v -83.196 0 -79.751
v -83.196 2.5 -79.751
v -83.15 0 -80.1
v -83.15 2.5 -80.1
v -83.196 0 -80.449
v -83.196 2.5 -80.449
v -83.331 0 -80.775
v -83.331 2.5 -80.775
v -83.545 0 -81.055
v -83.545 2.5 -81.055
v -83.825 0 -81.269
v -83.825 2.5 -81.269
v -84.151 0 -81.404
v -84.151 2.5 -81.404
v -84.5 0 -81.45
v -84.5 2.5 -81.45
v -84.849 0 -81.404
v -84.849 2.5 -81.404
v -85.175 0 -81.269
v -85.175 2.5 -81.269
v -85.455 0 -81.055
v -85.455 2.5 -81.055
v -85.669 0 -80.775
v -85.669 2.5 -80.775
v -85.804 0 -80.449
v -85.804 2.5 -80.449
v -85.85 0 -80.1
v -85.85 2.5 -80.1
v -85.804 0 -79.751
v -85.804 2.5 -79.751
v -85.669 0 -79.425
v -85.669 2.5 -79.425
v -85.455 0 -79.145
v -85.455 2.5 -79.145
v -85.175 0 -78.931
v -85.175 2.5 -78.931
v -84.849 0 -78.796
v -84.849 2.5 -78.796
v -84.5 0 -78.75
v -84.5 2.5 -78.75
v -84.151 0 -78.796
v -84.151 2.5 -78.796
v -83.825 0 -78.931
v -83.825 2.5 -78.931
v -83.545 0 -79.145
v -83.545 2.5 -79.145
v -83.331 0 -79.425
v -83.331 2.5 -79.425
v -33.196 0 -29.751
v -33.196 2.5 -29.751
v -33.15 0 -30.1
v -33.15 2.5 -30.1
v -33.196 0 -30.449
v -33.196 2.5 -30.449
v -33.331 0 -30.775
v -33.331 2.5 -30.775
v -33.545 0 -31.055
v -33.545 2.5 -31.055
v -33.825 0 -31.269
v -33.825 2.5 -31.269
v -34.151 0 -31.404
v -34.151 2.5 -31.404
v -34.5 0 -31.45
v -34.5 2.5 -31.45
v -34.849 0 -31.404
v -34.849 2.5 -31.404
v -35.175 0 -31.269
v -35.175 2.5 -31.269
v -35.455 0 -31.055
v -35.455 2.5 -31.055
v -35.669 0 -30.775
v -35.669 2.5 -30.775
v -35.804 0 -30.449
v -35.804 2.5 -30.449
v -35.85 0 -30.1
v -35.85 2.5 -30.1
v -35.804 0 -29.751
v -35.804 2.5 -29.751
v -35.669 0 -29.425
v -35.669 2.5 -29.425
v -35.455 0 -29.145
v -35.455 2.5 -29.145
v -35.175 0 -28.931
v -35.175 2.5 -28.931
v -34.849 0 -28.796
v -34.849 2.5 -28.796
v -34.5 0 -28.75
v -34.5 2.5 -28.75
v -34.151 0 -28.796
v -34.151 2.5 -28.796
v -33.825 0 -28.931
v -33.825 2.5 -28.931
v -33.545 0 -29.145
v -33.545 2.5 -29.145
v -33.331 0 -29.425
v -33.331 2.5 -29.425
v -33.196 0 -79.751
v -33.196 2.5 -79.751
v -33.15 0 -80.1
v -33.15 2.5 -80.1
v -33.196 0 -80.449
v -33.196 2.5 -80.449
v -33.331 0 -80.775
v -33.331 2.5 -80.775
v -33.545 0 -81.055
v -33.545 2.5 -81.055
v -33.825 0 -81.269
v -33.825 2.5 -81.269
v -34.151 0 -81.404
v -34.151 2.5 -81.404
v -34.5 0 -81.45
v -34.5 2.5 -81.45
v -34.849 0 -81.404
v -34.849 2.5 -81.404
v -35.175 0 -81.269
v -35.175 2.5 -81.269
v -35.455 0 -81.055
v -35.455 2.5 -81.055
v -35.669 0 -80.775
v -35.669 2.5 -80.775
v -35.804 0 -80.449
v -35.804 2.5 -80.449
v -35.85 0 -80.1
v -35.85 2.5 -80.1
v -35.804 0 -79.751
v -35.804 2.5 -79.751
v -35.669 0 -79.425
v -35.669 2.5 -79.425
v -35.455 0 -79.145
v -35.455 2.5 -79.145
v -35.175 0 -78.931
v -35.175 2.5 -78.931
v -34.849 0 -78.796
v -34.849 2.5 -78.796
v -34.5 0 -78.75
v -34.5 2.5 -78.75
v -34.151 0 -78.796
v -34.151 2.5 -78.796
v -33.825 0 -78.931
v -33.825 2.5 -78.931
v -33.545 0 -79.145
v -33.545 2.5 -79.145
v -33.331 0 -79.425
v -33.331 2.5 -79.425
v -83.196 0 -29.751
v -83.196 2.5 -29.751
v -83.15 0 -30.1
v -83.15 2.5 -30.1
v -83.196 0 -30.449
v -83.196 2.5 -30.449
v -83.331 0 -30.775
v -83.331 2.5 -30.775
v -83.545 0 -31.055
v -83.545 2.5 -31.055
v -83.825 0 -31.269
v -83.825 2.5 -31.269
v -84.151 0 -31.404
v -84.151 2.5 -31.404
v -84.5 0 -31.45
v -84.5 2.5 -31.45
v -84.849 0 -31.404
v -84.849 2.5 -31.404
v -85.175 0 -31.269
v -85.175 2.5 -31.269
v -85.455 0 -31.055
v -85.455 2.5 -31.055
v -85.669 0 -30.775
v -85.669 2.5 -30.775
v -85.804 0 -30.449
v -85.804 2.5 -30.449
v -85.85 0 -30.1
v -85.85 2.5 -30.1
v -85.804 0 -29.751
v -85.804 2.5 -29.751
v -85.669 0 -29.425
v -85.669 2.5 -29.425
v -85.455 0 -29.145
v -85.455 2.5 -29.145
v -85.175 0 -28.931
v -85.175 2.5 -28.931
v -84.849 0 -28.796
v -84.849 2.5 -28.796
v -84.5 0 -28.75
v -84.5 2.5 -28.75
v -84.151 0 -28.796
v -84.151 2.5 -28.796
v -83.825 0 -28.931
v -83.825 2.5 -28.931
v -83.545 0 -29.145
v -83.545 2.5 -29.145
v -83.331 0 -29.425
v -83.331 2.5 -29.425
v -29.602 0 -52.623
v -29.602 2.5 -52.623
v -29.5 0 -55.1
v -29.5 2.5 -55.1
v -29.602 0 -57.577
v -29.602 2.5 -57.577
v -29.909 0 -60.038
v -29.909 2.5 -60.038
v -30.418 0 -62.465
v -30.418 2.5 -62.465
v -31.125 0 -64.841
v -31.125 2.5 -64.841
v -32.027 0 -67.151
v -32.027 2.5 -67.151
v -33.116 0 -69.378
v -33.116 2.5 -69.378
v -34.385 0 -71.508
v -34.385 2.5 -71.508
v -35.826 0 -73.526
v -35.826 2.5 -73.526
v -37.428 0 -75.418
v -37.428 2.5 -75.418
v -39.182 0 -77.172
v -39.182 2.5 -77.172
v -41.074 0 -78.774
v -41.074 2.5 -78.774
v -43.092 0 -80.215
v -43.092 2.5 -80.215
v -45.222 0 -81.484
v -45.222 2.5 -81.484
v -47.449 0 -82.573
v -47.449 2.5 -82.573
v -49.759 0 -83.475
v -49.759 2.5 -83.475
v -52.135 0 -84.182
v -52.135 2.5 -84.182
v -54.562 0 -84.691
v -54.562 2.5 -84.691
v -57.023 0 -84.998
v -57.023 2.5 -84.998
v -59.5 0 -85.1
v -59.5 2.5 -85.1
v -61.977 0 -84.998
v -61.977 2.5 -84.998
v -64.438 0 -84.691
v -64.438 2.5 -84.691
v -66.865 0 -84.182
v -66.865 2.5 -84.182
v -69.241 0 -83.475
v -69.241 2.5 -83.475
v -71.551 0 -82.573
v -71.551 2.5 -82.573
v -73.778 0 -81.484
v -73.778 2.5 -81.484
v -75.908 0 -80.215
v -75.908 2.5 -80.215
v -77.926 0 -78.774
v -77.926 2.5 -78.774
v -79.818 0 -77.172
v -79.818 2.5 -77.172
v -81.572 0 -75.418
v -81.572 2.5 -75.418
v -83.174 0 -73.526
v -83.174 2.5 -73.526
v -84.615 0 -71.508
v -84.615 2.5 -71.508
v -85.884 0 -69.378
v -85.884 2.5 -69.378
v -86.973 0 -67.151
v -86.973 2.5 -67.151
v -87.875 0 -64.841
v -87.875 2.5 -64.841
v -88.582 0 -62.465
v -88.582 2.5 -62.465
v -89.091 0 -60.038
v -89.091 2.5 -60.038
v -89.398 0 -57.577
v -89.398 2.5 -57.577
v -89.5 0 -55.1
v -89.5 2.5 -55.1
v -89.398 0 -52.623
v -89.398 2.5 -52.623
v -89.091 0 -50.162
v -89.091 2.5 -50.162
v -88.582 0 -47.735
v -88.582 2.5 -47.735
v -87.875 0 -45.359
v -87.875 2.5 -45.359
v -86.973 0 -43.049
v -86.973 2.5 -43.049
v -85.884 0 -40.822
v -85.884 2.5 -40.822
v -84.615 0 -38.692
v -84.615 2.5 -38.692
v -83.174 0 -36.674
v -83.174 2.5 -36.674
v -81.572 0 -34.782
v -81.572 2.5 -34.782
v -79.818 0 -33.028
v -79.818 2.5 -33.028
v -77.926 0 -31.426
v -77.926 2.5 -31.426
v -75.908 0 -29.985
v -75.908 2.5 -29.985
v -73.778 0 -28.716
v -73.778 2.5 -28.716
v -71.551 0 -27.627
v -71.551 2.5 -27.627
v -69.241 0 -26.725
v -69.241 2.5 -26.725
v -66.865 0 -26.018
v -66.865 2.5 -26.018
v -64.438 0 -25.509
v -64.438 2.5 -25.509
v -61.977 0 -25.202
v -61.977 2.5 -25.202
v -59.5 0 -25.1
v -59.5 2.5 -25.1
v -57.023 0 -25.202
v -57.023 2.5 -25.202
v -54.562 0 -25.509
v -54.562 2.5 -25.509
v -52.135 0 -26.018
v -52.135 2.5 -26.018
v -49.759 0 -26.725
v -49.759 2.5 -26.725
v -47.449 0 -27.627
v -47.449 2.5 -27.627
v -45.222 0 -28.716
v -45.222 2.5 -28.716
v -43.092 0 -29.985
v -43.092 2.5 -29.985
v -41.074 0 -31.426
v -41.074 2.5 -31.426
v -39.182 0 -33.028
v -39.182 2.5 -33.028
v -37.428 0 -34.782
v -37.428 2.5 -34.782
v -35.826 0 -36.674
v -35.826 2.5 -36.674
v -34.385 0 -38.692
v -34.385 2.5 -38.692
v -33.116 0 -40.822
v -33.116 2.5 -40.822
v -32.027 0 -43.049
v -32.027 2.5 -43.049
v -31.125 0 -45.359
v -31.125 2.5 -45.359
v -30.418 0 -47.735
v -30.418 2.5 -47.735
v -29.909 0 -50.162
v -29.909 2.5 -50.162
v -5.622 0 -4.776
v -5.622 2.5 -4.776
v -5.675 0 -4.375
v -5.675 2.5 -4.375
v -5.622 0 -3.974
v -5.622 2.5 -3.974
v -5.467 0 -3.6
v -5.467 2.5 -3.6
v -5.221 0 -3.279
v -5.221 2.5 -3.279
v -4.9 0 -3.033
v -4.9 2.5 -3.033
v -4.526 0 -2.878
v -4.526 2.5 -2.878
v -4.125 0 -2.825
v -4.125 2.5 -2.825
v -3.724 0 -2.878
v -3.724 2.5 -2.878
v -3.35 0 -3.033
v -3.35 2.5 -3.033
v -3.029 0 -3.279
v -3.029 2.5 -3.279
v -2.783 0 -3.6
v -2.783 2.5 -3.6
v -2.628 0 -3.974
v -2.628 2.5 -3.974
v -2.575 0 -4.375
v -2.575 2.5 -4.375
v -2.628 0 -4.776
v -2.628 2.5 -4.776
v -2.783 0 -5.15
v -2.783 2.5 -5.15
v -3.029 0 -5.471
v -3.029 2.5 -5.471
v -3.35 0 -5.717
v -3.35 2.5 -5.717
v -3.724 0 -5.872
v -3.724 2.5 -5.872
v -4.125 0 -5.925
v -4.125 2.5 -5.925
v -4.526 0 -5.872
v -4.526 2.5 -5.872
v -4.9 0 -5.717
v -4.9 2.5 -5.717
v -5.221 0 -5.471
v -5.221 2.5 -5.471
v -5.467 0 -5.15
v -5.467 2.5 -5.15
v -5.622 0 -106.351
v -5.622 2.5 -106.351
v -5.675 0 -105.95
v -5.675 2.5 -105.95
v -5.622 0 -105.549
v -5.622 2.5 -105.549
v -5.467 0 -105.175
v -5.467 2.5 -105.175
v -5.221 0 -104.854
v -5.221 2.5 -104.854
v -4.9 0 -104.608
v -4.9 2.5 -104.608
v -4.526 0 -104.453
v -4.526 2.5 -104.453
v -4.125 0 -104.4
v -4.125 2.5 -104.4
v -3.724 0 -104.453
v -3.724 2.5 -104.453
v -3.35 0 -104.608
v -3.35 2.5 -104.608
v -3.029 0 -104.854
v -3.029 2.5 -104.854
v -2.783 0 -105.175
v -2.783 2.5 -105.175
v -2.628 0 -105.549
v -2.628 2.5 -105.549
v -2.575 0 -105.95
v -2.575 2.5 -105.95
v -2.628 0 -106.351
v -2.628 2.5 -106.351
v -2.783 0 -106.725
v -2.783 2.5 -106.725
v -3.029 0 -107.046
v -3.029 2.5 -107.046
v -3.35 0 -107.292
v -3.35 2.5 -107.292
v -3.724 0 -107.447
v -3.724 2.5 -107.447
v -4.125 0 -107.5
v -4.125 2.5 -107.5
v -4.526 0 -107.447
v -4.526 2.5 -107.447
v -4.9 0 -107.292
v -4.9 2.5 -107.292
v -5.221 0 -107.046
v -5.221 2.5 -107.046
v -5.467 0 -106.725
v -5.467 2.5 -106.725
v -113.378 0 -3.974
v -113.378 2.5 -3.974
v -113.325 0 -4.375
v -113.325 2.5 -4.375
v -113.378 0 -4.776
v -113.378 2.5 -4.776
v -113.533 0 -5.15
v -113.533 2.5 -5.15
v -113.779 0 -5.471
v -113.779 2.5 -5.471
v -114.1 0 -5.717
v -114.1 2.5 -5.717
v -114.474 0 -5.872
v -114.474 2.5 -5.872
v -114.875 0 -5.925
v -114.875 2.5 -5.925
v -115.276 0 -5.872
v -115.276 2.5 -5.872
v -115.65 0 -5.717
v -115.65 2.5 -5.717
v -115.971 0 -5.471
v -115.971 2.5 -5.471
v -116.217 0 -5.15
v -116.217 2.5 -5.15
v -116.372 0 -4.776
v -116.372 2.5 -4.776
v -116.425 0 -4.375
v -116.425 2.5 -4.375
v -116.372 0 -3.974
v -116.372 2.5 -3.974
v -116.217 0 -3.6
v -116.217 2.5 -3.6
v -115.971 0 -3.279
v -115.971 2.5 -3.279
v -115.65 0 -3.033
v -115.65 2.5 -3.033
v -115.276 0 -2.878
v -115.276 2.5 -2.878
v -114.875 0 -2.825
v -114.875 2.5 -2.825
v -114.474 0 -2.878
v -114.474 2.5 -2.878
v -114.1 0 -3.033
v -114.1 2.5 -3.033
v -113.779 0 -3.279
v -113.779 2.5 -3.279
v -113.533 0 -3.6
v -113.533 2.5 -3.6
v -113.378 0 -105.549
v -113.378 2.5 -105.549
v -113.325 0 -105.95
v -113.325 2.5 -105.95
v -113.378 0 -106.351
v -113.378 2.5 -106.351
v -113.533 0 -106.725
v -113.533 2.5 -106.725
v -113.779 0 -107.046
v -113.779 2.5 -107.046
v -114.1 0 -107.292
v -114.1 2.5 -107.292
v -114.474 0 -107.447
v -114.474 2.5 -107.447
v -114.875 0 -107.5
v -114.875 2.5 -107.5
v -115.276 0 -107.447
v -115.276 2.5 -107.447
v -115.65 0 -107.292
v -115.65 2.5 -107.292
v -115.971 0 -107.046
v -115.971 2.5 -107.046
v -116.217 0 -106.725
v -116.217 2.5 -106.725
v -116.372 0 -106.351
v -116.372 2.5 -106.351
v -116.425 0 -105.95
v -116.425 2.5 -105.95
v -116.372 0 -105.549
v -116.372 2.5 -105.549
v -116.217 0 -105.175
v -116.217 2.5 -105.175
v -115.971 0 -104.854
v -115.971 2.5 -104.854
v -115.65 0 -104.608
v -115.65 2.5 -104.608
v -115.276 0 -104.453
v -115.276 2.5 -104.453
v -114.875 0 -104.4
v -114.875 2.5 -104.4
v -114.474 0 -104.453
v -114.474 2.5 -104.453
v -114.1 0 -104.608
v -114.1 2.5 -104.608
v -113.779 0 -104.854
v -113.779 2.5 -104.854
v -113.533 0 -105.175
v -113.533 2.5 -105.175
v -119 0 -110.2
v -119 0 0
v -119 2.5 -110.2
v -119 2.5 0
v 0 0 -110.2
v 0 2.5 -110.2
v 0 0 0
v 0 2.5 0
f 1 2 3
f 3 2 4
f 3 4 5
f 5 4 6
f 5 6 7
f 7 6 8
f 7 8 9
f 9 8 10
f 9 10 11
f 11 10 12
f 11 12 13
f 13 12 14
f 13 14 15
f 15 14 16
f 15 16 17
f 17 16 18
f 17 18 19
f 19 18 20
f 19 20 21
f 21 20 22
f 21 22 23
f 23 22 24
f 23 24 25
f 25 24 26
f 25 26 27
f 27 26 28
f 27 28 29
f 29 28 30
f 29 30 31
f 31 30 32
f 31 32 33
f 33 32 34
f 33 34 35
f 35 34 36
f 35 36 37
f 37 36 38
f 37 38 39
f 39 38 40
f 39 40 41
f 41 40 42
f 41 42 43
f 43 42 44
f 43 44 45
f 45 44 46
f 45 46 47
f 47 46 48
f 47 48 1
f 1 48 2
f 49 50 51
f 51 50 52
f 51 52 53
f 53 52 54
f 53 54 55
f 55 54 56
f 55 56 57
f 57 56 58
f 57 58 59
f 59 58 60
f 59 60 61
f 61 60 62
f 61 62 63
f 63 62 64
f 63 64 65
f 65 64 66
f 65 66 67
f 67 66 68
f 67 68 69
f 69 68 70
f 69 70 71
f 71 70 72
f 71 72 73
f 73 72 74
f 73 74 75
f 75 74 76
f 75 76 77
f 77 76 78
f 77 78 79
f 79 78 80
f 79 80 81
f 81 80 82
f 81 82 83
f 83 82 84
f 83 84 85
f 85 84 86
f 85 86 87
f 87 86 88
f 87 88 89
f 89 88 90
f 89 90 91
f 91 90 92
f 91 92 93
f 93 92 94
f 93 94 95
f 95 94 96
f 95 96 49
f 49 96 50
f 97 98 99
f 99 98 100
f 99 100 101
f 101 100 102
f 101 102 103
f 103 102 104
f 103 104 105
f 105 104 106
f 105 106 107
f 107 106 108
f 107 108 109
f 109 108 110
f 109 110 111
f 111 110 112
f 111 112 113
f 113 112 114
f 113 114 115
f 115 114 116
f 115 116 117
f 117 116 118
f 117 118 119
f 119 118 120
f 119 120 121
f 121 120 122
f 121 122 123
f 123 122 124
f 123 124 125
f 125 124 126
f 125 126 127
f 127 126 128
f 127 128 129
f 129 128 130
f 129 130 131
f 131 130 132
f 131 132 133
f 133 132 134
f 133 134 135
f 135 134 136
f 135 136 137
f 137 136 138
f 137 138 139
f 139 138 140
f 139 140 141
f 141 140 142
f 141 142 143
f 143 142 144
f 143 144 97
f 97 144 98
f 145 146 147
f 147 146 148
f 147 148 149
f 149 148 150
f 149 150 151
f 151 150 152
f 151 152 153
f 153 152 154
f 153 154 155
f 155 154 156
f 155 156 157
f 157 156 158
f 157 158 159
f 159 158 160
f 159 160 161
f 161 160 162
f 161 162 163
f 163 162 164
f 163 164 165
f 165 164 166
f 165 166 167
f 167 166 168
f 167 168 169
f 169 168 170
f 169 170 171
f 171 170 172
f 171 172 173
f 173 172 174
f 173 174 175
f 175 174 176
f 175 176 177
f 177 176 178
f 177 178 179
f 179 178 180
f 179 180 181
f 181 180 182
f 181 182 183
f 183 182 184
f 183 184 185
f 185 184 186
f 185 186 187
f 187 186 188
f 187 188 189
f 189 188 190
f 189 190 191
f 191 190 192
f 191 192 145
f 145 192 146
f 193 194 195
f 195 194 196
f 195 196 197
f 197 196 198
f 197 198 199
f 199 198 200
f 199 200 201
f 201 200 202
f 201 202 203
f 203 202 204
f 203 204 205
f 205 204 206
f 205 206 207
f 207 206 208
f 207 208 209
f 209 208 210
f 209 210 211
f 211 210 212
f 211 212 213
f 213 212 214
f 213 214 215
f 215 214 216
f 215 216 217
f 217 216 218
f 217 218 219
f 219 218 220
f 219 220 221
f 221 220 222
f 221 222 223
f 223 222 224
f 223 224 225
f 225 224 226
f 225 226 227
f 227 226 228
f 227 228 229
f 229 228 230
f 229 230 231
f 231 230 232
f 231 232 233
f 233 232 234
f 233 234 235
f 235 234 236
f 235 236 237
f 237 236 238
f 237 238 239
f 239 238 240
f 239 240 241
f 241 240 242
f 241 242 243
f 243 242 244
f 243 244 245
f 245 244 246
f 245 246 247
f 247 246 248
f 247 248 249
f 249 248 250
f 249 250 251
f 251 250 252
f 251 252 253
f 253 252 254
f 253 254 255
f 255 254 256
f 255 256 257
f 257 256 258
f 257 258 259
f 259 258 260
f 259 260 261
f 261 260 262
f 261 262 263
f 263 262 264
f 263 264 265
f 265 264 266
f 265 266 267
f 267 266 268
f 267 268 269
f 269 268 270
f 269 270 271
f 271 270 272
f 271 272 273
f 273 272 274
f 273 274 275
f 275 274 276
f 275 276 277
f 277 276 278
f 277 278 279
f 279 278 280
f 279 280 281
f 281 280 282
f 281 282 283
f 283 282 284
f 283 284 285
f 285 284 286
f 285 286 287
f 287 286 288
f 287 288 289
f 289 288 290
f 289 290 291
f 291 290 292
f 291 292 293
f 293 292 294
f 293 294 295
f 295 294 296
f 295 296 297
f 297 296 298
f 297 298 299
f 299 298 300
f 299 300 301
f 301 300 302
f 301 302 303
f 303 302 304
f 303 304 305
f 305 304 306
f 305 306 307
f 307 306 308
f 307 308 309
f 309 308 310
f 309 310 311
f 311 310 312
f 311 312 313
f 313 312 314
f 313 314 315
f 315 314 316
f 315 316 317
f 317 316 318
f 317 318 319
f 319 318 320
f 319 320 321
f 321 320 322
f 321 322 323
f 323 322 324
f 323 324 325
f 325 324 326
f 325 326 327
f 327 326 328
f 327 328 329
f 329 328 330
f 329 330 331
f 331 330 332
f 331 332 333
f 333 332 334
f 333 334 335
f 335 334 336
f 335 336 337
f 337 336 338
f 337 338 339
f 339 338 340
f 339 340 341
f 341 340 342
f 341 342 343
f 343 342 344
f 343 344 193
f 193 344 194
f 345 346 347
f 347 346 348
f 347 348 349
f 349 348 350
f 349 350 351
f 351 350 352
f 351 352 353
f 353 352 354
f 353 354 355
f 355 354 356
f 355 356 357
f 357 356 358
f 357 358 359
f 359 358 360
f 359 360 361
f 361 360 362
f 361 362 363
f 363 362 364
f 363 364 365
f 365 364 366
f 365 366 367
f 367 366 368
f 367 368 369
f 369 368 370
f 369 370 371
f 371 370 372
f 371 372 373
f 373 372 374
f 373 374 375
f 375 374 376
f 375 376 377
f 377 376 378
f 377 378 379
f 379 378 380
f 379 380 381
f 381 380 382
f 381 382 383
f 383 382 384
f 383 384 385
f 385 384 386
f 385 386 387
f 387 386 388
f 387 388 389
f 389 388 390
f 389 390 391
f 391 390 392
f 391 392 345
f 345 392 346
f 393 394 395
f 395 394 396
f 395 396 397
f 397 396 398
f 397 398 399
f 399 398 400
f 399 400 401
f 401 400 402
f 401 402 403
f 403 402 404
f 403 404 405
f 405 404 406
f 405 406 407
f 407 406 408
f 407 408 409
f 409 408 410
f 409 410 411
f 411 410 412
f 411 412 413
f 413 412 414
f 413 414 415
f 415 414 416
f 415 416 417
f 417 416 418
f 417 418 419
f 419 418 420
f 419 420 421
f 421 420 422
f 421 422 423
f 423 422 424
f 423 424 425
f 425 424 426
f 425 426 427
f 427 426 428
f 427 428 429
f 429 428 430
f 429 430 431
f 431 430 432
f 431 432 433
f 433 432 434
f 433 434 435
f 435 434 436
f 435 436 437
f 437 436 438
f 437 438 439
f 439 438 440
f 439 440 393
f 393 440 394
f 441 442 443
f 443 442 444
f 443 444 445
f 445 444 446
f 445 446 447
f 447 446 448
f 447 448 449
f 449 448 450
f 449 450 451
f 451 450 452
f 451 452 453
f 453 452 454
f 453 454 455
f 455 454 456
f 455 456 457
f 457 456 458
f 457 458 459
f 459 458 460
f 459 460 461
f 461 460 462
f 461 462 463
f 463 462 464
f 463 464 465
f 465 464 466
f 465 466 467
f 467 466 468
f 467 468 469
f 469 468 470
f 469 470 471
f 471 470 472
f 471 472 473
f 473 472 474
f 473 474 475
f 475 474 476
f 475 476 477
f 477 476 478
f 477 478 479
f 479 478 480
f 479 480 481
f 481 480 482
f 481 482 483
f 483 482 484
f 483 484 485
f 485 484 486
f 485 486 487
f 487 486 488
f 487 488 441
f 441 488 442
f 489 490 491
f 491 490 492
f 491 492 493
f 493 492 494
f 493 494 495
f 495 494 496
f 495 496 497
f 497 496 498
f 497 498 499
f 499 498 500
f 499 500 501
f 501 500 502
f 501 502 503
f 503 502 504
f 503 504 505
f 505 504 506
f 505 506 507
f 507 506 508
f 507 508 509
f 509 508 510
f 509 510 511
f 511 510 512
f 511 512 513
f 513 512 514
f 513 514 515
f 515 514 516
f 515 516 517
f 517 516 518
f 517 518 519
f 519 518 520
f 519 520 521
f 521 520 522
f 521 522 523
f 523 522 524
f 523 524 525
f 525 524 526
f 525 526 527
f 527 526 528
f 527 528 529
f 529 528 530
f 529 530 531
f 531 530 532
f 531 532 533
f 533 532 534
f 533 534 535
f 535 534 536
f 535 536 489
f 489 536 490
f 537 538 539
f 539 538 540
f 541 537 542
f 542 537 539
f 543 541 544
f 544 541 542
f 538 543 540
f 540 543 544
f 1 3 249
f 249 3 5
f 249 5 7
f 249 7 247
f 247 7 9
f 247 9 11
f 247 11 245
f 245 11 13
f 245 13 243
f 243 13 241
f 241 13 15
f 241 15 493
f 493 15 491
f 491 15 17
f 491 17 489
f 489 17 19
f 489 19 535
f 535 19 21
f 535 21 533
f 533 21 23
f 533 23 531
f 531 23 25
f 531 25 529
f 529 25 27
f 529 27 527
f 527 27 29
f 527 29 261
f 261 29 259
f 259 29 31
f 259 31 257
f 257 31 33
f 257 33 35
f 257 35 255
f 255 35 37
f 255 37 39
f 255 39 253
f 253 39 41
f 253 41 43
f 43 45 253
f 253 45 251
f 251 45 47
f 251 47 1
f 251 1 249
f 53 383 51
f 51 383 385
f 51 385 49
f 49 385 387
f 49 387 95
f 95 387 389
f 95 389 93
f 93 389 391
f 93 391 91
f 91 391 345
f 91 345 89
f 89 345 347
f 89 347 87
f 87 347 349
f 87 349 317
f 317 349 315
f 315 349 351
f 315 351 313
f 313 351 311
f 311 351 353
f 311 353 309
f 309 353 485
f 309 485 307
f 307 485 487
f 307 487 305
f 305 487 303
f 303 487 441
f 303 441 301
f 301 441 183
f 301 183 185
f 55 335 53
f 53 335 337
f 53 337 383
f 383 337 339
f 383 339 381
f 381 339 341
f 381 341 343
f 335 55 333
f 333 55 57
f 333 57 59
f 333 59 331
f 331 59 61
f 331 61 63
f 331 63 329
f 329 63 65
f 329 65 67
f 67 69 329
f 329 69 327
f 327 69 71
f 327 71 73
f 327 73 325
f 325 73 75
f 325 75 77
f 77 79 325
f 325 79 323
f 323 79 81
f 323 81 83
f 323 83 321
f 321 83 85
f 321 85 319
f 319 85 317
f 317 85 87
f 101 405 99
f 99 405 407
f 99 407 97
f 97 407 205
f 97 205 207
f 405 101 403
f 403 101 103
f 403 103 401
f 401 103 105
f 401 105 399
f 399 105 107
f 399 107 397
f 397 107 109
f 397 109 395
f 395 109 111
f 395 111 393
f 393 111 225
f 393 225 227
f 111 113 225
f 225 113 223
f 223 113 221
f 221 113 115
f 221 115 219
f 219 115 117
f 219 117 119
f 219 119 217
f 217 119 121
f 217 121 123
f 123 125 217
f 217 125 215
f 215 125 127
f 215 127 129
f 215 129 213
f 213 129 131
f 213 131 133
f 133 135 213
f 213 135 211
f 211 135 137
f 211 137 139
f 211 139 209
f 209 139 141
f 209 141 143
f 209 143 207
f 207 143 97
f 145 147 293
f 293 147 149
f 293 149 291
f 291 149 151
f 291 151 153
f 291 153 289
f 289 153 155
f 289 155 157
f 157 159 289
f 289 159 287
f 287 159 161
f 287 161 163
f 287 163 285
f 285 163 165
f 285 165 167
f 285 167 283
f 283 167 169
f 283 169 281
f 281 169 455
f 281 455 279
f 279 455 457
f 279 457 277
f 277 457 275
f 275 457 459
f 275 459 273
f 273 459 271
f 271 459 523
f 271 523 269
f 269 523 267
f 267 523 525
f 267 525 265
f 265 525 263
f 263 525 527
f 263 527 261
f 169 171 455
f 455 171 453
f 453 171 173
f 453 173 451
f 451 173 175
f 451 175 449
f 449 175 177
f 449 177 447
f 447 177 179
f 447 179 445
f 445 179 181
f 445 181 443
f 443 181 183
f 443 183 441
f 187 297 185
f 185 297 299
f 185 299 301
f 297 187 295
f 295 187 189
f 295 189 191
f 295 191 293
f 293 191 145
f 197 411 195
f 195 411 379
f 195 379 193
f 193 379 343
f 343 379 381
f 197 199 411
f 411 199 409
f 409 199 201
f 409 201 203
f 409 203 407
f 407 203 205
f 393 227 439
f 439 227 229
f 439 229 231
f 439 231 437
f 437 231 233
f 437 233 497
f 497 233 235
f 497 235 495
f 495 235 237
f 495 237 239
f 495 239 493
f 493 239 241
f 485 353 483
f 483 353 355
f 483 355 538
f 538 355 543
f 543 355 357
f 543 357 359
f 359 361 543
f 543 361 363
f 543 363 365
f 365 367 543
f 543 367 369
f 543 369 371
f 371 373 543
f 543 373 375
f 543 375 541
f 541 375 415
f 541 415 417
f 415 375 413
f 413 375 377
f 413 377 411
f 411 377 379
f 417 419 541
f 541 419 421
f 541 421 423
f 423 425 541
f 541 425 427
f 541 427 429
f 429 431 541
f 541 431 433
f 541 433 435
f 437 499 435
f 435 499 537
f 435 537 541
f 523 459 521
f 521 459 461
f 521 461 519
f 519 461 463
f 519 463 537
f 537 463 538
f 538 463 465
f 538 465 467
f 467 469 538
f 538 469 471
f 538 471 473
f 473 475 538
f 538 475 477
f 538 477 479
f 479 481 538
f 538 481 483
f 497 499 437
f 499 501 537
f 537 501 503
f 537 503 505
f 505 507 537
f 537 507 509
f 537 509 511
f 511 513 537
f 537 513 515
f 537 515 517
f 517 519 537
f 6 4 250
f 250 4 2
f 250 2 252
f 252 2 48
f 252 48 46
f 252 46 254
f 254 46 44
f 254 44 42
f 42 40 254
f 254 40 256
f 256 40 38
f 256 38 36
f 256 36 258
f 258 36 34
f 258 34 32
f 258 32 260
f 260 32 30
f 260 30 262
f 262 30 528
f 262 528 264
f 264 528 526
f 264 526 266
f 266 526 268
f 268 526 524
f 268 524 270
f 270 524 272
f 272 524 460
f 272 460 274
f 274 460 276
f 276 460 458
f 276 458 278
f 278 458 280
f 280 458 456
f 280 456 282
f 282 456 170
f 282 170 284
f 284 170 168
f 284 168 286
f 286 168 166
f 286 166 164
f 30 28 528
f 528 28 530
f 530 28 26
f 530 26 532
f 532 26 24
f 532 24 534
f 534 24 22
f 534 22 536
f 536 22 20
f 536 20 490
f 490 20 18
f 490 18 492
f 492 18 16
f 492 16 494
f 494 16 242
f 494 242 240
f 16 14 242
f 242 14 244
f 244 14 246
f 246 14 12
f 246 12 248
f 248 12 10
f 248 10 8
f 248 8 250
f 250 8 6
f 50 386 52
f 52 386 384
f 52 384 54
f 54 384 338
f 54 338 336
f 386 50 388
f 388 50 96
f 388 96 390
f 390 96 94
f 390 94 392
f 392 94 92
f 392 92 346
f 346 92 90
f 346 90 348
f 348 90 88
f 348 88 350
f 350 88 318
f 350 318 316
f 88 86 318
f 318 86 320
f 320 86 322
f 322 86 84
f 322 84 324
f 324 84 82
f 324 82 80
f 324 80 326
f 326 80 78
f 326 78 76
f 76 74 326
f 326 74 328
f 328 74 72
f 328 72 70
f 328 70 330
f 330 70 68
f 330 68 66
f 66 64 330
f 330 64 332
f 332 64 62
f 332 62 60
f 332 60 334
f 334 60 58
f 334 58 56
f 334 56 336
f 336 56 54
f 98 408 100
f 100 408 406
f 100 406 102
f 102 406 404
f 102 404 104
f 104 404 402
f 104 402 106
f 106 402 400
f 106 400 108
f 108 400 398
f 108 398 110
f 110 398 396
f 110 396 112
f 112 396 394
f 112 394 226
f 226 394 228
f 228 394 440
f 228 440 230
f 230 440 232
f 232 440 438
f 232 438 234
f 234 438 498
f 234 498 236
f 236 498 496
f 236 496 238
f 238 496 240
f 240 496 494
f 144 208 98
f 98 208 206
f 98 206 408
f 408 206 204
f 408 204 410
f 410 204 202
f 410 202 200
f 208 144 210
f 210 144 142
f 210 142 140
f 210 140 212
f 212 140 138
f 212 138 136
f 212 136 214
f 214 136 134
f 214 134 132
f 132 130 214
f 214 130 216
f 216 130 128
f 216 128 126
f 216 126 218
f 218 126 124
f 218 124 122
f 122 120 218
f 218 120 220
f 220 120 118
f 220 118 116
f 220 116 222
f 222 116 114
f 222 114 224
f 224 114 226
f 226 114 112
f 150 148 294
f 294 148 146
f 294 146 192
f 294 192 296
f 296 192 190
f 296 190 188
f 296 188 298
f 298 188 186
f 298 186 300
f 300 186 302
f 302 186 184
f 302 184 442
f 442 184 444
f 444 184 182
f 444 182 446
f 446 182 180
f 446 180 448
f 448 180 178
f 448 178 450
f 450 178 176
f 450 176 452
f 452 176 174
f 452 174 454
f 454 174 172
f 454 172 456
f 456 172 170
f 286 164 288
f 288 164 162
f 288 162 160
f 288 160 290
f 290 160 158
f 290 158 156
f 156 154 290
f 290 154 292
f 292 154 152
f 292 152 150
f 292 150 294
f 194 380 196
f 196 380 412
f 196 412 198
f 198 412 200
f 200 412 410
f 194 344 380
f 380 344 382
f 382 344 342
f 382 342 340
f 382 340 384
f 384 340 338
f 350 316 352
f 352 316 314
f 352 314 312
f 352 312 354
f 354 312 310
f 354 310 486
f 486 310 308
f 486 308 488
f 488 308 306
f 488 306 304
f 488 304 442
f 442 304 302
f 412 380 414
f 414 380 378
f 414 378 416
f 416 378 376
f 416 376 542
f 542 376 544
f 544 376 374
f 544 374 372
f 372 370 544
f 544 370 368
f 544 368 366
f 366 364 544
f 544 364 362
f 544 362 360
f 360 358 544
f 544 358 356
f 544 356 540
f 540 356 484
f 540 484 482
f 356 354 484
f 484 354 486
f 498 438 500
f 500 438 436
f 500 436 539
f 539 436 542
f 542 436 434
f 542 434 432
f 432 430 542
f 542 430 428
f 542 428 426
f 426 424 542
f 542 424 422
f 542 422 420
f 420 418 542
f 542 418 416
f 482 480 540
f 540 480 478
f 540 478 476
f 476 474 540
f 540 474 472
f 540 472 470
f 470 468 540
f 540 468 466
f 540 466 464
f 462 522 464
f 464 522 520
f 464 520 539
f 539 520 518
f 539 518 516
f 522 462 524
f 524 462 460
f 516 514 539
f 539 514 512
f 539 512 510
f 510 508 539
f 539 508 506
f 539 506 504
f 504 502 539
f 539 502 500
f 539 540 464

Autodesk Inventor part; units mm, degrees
ref_plane "YZ Plane" through (0, 0, 0) normal (1, 0, 0) x (0, 1, 0)
ref_plane "XZ Plane" through (0, 0, 0) normal (0, 1, 0) x (-1, 0, 0)
sketch "Sketch1" plane through (0, 0, 0) normal (0, 1, 0) x (-1, 0, 0)
  line L0 (0, 0) -> (119, 0)
  line L1 (119, 0) -> (119, -110.2)
  line L2 (119, -110.2) -> (0, -110.2)
  line L3 (0, -110.2) -> (0, 0)
  dimension "d0" = 119
  dimension "d1" = 110.2
extrude "Extrusion1" add sketch "Sketch1" along normal blind 2.5
sketch "Sketch2" plane through (0, 2.5, 0) normal (0, 1, 0) x (1, 0, 0)
  line L0 (-119, 0) -> (0, 0) projected
  line L1 (0, 0) -> (0, 110.2) projected
  line L2 (0, 110.2) -> (-119, 110.2) projected
  line L3 (-119, 110.2) -> (-119, 0) projected
  circle A0 centre (-114.875, 4.375) radius 1.55
  circle A1 centre (-11.5301, 10.067) radius 1.55
  circle A2 centre (-11.5301, 99.7072) radius 1.55
  circle A3 centre (-114.875, 105.95) radius 1.55
  dimension "d4" = 3.1
  dimension "d5" = 3.1
  dimension "d6" = 3.1
  dimension "d7" = 3.1
  dimension "d8" = 4.375
  dimension "d9" = 4.125
  dimension "d10" = 4.25
  dimension "d11" = 4.125
extrude "Extrusion2" cut sketch "Sketch2" against normal through all contours A0 | A3
ref_plane "Work Plane1" through (-59.5, 0, 0) normal (1, 0, 0) x (0, 0, -1)
mirror "Mirror1" about plane through (-59.5, 0, 0) normal (1, 0, 0) of "Extrusion2"
sketch "Sketch3" plane through (0, 2.5, 0) normal (0, 1, 0) x (1, 0, 0)
  circle A0 centre (-4.125, 4.375) radius 1.55 projected
  circle A1 centre (-4.125, 105.95) radius 1.55 projected
  circle A2 centre (-114.875, 4.375) radius 1.55 projected
  circle A3 centre (-114.875, 105.95) radius 1.55 projected
  line L0 (-119, 0) -> (0, 0) projected
  line L1 (0, 0) -> (0, 110.2) projected
  line L2 (0, 110.2) -> (-119, 110.2) projected
  line L3 (-119, 110.2) -> (-119, 0) projected
  circle A4 centre (-59.5, 55.1) radius 30
  circle A5 centre (-34.5, 80.1) radius 1.35
  circle A6 centre (-34.5, 30.1) radius 1.35
  circle A7 centre (-84.5, 30.1) radius 1.35
  circle A8 centre (-84.5, 80.1) radius 1.35
  dimension "d26" = 2.7
  dimension "d27" = 2.7
  dimension "d30" = 50
  dimension "d31" = 50
  dimension "d32" = 50
  dimension "d33" = 25
  dimension "d34" = 25
  dimension "d35" = 25
  dimension "d36" = 60
extrude "Extrusion3" cut sketch "Sketch3" against normal through all contours A4 | A5 | A6 | A7 | A8
properties part number "Base Cover Left"
